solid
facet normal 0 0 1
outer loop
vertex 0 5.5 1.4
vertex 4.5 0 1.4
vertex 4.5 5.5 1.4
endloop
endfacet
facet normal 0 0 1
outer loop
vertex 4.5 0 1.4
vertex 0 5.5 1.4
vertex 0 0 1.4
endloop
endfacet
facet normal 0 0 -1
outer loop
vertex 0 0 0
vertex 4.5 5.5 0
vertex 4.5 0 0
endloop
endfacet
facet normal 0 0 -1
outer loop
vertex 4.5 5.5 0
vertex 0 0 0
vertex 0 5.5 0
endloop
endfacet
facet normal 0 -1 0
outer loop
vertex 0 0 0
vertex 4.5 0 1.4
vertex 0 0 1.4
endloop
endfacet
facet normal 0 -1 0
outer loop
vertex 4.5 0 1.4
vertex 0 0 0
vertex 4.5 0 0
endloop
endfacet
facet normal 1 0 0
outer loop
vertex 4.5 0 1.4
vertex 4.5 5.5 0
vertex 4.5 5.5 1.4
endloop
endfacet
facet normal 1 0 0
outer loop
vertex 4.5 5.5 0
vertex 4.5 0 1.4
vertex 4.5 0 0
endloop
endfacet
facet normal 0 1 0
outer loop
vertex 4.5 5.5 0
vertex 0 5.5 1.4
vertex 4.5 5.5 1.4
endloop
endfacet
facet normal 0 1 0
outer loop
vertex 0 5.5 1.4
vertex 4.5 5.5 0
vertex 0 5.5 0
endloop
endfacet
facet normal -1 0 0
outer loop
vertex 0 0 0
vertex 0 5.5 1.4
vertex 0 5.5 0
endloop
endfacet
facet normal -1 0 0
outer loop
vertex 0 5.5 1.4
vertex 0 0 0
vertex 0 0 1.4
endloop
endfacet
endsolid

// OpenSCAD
/* Warning, this is a very basic generator with a lot of approximation 
input data : [LFLGA, DAB, 4.5x5.5x1.4mm, 49, , A, C04-21477A]
generated by com.zoubworld.electronics.cad.model3d.Basic
Date : Sun Feb 15 10:50:49 CET 2026
*/

//body
color("black")
translate([0,0,0])
cube([4.5,5.5,1.4], center=false);
